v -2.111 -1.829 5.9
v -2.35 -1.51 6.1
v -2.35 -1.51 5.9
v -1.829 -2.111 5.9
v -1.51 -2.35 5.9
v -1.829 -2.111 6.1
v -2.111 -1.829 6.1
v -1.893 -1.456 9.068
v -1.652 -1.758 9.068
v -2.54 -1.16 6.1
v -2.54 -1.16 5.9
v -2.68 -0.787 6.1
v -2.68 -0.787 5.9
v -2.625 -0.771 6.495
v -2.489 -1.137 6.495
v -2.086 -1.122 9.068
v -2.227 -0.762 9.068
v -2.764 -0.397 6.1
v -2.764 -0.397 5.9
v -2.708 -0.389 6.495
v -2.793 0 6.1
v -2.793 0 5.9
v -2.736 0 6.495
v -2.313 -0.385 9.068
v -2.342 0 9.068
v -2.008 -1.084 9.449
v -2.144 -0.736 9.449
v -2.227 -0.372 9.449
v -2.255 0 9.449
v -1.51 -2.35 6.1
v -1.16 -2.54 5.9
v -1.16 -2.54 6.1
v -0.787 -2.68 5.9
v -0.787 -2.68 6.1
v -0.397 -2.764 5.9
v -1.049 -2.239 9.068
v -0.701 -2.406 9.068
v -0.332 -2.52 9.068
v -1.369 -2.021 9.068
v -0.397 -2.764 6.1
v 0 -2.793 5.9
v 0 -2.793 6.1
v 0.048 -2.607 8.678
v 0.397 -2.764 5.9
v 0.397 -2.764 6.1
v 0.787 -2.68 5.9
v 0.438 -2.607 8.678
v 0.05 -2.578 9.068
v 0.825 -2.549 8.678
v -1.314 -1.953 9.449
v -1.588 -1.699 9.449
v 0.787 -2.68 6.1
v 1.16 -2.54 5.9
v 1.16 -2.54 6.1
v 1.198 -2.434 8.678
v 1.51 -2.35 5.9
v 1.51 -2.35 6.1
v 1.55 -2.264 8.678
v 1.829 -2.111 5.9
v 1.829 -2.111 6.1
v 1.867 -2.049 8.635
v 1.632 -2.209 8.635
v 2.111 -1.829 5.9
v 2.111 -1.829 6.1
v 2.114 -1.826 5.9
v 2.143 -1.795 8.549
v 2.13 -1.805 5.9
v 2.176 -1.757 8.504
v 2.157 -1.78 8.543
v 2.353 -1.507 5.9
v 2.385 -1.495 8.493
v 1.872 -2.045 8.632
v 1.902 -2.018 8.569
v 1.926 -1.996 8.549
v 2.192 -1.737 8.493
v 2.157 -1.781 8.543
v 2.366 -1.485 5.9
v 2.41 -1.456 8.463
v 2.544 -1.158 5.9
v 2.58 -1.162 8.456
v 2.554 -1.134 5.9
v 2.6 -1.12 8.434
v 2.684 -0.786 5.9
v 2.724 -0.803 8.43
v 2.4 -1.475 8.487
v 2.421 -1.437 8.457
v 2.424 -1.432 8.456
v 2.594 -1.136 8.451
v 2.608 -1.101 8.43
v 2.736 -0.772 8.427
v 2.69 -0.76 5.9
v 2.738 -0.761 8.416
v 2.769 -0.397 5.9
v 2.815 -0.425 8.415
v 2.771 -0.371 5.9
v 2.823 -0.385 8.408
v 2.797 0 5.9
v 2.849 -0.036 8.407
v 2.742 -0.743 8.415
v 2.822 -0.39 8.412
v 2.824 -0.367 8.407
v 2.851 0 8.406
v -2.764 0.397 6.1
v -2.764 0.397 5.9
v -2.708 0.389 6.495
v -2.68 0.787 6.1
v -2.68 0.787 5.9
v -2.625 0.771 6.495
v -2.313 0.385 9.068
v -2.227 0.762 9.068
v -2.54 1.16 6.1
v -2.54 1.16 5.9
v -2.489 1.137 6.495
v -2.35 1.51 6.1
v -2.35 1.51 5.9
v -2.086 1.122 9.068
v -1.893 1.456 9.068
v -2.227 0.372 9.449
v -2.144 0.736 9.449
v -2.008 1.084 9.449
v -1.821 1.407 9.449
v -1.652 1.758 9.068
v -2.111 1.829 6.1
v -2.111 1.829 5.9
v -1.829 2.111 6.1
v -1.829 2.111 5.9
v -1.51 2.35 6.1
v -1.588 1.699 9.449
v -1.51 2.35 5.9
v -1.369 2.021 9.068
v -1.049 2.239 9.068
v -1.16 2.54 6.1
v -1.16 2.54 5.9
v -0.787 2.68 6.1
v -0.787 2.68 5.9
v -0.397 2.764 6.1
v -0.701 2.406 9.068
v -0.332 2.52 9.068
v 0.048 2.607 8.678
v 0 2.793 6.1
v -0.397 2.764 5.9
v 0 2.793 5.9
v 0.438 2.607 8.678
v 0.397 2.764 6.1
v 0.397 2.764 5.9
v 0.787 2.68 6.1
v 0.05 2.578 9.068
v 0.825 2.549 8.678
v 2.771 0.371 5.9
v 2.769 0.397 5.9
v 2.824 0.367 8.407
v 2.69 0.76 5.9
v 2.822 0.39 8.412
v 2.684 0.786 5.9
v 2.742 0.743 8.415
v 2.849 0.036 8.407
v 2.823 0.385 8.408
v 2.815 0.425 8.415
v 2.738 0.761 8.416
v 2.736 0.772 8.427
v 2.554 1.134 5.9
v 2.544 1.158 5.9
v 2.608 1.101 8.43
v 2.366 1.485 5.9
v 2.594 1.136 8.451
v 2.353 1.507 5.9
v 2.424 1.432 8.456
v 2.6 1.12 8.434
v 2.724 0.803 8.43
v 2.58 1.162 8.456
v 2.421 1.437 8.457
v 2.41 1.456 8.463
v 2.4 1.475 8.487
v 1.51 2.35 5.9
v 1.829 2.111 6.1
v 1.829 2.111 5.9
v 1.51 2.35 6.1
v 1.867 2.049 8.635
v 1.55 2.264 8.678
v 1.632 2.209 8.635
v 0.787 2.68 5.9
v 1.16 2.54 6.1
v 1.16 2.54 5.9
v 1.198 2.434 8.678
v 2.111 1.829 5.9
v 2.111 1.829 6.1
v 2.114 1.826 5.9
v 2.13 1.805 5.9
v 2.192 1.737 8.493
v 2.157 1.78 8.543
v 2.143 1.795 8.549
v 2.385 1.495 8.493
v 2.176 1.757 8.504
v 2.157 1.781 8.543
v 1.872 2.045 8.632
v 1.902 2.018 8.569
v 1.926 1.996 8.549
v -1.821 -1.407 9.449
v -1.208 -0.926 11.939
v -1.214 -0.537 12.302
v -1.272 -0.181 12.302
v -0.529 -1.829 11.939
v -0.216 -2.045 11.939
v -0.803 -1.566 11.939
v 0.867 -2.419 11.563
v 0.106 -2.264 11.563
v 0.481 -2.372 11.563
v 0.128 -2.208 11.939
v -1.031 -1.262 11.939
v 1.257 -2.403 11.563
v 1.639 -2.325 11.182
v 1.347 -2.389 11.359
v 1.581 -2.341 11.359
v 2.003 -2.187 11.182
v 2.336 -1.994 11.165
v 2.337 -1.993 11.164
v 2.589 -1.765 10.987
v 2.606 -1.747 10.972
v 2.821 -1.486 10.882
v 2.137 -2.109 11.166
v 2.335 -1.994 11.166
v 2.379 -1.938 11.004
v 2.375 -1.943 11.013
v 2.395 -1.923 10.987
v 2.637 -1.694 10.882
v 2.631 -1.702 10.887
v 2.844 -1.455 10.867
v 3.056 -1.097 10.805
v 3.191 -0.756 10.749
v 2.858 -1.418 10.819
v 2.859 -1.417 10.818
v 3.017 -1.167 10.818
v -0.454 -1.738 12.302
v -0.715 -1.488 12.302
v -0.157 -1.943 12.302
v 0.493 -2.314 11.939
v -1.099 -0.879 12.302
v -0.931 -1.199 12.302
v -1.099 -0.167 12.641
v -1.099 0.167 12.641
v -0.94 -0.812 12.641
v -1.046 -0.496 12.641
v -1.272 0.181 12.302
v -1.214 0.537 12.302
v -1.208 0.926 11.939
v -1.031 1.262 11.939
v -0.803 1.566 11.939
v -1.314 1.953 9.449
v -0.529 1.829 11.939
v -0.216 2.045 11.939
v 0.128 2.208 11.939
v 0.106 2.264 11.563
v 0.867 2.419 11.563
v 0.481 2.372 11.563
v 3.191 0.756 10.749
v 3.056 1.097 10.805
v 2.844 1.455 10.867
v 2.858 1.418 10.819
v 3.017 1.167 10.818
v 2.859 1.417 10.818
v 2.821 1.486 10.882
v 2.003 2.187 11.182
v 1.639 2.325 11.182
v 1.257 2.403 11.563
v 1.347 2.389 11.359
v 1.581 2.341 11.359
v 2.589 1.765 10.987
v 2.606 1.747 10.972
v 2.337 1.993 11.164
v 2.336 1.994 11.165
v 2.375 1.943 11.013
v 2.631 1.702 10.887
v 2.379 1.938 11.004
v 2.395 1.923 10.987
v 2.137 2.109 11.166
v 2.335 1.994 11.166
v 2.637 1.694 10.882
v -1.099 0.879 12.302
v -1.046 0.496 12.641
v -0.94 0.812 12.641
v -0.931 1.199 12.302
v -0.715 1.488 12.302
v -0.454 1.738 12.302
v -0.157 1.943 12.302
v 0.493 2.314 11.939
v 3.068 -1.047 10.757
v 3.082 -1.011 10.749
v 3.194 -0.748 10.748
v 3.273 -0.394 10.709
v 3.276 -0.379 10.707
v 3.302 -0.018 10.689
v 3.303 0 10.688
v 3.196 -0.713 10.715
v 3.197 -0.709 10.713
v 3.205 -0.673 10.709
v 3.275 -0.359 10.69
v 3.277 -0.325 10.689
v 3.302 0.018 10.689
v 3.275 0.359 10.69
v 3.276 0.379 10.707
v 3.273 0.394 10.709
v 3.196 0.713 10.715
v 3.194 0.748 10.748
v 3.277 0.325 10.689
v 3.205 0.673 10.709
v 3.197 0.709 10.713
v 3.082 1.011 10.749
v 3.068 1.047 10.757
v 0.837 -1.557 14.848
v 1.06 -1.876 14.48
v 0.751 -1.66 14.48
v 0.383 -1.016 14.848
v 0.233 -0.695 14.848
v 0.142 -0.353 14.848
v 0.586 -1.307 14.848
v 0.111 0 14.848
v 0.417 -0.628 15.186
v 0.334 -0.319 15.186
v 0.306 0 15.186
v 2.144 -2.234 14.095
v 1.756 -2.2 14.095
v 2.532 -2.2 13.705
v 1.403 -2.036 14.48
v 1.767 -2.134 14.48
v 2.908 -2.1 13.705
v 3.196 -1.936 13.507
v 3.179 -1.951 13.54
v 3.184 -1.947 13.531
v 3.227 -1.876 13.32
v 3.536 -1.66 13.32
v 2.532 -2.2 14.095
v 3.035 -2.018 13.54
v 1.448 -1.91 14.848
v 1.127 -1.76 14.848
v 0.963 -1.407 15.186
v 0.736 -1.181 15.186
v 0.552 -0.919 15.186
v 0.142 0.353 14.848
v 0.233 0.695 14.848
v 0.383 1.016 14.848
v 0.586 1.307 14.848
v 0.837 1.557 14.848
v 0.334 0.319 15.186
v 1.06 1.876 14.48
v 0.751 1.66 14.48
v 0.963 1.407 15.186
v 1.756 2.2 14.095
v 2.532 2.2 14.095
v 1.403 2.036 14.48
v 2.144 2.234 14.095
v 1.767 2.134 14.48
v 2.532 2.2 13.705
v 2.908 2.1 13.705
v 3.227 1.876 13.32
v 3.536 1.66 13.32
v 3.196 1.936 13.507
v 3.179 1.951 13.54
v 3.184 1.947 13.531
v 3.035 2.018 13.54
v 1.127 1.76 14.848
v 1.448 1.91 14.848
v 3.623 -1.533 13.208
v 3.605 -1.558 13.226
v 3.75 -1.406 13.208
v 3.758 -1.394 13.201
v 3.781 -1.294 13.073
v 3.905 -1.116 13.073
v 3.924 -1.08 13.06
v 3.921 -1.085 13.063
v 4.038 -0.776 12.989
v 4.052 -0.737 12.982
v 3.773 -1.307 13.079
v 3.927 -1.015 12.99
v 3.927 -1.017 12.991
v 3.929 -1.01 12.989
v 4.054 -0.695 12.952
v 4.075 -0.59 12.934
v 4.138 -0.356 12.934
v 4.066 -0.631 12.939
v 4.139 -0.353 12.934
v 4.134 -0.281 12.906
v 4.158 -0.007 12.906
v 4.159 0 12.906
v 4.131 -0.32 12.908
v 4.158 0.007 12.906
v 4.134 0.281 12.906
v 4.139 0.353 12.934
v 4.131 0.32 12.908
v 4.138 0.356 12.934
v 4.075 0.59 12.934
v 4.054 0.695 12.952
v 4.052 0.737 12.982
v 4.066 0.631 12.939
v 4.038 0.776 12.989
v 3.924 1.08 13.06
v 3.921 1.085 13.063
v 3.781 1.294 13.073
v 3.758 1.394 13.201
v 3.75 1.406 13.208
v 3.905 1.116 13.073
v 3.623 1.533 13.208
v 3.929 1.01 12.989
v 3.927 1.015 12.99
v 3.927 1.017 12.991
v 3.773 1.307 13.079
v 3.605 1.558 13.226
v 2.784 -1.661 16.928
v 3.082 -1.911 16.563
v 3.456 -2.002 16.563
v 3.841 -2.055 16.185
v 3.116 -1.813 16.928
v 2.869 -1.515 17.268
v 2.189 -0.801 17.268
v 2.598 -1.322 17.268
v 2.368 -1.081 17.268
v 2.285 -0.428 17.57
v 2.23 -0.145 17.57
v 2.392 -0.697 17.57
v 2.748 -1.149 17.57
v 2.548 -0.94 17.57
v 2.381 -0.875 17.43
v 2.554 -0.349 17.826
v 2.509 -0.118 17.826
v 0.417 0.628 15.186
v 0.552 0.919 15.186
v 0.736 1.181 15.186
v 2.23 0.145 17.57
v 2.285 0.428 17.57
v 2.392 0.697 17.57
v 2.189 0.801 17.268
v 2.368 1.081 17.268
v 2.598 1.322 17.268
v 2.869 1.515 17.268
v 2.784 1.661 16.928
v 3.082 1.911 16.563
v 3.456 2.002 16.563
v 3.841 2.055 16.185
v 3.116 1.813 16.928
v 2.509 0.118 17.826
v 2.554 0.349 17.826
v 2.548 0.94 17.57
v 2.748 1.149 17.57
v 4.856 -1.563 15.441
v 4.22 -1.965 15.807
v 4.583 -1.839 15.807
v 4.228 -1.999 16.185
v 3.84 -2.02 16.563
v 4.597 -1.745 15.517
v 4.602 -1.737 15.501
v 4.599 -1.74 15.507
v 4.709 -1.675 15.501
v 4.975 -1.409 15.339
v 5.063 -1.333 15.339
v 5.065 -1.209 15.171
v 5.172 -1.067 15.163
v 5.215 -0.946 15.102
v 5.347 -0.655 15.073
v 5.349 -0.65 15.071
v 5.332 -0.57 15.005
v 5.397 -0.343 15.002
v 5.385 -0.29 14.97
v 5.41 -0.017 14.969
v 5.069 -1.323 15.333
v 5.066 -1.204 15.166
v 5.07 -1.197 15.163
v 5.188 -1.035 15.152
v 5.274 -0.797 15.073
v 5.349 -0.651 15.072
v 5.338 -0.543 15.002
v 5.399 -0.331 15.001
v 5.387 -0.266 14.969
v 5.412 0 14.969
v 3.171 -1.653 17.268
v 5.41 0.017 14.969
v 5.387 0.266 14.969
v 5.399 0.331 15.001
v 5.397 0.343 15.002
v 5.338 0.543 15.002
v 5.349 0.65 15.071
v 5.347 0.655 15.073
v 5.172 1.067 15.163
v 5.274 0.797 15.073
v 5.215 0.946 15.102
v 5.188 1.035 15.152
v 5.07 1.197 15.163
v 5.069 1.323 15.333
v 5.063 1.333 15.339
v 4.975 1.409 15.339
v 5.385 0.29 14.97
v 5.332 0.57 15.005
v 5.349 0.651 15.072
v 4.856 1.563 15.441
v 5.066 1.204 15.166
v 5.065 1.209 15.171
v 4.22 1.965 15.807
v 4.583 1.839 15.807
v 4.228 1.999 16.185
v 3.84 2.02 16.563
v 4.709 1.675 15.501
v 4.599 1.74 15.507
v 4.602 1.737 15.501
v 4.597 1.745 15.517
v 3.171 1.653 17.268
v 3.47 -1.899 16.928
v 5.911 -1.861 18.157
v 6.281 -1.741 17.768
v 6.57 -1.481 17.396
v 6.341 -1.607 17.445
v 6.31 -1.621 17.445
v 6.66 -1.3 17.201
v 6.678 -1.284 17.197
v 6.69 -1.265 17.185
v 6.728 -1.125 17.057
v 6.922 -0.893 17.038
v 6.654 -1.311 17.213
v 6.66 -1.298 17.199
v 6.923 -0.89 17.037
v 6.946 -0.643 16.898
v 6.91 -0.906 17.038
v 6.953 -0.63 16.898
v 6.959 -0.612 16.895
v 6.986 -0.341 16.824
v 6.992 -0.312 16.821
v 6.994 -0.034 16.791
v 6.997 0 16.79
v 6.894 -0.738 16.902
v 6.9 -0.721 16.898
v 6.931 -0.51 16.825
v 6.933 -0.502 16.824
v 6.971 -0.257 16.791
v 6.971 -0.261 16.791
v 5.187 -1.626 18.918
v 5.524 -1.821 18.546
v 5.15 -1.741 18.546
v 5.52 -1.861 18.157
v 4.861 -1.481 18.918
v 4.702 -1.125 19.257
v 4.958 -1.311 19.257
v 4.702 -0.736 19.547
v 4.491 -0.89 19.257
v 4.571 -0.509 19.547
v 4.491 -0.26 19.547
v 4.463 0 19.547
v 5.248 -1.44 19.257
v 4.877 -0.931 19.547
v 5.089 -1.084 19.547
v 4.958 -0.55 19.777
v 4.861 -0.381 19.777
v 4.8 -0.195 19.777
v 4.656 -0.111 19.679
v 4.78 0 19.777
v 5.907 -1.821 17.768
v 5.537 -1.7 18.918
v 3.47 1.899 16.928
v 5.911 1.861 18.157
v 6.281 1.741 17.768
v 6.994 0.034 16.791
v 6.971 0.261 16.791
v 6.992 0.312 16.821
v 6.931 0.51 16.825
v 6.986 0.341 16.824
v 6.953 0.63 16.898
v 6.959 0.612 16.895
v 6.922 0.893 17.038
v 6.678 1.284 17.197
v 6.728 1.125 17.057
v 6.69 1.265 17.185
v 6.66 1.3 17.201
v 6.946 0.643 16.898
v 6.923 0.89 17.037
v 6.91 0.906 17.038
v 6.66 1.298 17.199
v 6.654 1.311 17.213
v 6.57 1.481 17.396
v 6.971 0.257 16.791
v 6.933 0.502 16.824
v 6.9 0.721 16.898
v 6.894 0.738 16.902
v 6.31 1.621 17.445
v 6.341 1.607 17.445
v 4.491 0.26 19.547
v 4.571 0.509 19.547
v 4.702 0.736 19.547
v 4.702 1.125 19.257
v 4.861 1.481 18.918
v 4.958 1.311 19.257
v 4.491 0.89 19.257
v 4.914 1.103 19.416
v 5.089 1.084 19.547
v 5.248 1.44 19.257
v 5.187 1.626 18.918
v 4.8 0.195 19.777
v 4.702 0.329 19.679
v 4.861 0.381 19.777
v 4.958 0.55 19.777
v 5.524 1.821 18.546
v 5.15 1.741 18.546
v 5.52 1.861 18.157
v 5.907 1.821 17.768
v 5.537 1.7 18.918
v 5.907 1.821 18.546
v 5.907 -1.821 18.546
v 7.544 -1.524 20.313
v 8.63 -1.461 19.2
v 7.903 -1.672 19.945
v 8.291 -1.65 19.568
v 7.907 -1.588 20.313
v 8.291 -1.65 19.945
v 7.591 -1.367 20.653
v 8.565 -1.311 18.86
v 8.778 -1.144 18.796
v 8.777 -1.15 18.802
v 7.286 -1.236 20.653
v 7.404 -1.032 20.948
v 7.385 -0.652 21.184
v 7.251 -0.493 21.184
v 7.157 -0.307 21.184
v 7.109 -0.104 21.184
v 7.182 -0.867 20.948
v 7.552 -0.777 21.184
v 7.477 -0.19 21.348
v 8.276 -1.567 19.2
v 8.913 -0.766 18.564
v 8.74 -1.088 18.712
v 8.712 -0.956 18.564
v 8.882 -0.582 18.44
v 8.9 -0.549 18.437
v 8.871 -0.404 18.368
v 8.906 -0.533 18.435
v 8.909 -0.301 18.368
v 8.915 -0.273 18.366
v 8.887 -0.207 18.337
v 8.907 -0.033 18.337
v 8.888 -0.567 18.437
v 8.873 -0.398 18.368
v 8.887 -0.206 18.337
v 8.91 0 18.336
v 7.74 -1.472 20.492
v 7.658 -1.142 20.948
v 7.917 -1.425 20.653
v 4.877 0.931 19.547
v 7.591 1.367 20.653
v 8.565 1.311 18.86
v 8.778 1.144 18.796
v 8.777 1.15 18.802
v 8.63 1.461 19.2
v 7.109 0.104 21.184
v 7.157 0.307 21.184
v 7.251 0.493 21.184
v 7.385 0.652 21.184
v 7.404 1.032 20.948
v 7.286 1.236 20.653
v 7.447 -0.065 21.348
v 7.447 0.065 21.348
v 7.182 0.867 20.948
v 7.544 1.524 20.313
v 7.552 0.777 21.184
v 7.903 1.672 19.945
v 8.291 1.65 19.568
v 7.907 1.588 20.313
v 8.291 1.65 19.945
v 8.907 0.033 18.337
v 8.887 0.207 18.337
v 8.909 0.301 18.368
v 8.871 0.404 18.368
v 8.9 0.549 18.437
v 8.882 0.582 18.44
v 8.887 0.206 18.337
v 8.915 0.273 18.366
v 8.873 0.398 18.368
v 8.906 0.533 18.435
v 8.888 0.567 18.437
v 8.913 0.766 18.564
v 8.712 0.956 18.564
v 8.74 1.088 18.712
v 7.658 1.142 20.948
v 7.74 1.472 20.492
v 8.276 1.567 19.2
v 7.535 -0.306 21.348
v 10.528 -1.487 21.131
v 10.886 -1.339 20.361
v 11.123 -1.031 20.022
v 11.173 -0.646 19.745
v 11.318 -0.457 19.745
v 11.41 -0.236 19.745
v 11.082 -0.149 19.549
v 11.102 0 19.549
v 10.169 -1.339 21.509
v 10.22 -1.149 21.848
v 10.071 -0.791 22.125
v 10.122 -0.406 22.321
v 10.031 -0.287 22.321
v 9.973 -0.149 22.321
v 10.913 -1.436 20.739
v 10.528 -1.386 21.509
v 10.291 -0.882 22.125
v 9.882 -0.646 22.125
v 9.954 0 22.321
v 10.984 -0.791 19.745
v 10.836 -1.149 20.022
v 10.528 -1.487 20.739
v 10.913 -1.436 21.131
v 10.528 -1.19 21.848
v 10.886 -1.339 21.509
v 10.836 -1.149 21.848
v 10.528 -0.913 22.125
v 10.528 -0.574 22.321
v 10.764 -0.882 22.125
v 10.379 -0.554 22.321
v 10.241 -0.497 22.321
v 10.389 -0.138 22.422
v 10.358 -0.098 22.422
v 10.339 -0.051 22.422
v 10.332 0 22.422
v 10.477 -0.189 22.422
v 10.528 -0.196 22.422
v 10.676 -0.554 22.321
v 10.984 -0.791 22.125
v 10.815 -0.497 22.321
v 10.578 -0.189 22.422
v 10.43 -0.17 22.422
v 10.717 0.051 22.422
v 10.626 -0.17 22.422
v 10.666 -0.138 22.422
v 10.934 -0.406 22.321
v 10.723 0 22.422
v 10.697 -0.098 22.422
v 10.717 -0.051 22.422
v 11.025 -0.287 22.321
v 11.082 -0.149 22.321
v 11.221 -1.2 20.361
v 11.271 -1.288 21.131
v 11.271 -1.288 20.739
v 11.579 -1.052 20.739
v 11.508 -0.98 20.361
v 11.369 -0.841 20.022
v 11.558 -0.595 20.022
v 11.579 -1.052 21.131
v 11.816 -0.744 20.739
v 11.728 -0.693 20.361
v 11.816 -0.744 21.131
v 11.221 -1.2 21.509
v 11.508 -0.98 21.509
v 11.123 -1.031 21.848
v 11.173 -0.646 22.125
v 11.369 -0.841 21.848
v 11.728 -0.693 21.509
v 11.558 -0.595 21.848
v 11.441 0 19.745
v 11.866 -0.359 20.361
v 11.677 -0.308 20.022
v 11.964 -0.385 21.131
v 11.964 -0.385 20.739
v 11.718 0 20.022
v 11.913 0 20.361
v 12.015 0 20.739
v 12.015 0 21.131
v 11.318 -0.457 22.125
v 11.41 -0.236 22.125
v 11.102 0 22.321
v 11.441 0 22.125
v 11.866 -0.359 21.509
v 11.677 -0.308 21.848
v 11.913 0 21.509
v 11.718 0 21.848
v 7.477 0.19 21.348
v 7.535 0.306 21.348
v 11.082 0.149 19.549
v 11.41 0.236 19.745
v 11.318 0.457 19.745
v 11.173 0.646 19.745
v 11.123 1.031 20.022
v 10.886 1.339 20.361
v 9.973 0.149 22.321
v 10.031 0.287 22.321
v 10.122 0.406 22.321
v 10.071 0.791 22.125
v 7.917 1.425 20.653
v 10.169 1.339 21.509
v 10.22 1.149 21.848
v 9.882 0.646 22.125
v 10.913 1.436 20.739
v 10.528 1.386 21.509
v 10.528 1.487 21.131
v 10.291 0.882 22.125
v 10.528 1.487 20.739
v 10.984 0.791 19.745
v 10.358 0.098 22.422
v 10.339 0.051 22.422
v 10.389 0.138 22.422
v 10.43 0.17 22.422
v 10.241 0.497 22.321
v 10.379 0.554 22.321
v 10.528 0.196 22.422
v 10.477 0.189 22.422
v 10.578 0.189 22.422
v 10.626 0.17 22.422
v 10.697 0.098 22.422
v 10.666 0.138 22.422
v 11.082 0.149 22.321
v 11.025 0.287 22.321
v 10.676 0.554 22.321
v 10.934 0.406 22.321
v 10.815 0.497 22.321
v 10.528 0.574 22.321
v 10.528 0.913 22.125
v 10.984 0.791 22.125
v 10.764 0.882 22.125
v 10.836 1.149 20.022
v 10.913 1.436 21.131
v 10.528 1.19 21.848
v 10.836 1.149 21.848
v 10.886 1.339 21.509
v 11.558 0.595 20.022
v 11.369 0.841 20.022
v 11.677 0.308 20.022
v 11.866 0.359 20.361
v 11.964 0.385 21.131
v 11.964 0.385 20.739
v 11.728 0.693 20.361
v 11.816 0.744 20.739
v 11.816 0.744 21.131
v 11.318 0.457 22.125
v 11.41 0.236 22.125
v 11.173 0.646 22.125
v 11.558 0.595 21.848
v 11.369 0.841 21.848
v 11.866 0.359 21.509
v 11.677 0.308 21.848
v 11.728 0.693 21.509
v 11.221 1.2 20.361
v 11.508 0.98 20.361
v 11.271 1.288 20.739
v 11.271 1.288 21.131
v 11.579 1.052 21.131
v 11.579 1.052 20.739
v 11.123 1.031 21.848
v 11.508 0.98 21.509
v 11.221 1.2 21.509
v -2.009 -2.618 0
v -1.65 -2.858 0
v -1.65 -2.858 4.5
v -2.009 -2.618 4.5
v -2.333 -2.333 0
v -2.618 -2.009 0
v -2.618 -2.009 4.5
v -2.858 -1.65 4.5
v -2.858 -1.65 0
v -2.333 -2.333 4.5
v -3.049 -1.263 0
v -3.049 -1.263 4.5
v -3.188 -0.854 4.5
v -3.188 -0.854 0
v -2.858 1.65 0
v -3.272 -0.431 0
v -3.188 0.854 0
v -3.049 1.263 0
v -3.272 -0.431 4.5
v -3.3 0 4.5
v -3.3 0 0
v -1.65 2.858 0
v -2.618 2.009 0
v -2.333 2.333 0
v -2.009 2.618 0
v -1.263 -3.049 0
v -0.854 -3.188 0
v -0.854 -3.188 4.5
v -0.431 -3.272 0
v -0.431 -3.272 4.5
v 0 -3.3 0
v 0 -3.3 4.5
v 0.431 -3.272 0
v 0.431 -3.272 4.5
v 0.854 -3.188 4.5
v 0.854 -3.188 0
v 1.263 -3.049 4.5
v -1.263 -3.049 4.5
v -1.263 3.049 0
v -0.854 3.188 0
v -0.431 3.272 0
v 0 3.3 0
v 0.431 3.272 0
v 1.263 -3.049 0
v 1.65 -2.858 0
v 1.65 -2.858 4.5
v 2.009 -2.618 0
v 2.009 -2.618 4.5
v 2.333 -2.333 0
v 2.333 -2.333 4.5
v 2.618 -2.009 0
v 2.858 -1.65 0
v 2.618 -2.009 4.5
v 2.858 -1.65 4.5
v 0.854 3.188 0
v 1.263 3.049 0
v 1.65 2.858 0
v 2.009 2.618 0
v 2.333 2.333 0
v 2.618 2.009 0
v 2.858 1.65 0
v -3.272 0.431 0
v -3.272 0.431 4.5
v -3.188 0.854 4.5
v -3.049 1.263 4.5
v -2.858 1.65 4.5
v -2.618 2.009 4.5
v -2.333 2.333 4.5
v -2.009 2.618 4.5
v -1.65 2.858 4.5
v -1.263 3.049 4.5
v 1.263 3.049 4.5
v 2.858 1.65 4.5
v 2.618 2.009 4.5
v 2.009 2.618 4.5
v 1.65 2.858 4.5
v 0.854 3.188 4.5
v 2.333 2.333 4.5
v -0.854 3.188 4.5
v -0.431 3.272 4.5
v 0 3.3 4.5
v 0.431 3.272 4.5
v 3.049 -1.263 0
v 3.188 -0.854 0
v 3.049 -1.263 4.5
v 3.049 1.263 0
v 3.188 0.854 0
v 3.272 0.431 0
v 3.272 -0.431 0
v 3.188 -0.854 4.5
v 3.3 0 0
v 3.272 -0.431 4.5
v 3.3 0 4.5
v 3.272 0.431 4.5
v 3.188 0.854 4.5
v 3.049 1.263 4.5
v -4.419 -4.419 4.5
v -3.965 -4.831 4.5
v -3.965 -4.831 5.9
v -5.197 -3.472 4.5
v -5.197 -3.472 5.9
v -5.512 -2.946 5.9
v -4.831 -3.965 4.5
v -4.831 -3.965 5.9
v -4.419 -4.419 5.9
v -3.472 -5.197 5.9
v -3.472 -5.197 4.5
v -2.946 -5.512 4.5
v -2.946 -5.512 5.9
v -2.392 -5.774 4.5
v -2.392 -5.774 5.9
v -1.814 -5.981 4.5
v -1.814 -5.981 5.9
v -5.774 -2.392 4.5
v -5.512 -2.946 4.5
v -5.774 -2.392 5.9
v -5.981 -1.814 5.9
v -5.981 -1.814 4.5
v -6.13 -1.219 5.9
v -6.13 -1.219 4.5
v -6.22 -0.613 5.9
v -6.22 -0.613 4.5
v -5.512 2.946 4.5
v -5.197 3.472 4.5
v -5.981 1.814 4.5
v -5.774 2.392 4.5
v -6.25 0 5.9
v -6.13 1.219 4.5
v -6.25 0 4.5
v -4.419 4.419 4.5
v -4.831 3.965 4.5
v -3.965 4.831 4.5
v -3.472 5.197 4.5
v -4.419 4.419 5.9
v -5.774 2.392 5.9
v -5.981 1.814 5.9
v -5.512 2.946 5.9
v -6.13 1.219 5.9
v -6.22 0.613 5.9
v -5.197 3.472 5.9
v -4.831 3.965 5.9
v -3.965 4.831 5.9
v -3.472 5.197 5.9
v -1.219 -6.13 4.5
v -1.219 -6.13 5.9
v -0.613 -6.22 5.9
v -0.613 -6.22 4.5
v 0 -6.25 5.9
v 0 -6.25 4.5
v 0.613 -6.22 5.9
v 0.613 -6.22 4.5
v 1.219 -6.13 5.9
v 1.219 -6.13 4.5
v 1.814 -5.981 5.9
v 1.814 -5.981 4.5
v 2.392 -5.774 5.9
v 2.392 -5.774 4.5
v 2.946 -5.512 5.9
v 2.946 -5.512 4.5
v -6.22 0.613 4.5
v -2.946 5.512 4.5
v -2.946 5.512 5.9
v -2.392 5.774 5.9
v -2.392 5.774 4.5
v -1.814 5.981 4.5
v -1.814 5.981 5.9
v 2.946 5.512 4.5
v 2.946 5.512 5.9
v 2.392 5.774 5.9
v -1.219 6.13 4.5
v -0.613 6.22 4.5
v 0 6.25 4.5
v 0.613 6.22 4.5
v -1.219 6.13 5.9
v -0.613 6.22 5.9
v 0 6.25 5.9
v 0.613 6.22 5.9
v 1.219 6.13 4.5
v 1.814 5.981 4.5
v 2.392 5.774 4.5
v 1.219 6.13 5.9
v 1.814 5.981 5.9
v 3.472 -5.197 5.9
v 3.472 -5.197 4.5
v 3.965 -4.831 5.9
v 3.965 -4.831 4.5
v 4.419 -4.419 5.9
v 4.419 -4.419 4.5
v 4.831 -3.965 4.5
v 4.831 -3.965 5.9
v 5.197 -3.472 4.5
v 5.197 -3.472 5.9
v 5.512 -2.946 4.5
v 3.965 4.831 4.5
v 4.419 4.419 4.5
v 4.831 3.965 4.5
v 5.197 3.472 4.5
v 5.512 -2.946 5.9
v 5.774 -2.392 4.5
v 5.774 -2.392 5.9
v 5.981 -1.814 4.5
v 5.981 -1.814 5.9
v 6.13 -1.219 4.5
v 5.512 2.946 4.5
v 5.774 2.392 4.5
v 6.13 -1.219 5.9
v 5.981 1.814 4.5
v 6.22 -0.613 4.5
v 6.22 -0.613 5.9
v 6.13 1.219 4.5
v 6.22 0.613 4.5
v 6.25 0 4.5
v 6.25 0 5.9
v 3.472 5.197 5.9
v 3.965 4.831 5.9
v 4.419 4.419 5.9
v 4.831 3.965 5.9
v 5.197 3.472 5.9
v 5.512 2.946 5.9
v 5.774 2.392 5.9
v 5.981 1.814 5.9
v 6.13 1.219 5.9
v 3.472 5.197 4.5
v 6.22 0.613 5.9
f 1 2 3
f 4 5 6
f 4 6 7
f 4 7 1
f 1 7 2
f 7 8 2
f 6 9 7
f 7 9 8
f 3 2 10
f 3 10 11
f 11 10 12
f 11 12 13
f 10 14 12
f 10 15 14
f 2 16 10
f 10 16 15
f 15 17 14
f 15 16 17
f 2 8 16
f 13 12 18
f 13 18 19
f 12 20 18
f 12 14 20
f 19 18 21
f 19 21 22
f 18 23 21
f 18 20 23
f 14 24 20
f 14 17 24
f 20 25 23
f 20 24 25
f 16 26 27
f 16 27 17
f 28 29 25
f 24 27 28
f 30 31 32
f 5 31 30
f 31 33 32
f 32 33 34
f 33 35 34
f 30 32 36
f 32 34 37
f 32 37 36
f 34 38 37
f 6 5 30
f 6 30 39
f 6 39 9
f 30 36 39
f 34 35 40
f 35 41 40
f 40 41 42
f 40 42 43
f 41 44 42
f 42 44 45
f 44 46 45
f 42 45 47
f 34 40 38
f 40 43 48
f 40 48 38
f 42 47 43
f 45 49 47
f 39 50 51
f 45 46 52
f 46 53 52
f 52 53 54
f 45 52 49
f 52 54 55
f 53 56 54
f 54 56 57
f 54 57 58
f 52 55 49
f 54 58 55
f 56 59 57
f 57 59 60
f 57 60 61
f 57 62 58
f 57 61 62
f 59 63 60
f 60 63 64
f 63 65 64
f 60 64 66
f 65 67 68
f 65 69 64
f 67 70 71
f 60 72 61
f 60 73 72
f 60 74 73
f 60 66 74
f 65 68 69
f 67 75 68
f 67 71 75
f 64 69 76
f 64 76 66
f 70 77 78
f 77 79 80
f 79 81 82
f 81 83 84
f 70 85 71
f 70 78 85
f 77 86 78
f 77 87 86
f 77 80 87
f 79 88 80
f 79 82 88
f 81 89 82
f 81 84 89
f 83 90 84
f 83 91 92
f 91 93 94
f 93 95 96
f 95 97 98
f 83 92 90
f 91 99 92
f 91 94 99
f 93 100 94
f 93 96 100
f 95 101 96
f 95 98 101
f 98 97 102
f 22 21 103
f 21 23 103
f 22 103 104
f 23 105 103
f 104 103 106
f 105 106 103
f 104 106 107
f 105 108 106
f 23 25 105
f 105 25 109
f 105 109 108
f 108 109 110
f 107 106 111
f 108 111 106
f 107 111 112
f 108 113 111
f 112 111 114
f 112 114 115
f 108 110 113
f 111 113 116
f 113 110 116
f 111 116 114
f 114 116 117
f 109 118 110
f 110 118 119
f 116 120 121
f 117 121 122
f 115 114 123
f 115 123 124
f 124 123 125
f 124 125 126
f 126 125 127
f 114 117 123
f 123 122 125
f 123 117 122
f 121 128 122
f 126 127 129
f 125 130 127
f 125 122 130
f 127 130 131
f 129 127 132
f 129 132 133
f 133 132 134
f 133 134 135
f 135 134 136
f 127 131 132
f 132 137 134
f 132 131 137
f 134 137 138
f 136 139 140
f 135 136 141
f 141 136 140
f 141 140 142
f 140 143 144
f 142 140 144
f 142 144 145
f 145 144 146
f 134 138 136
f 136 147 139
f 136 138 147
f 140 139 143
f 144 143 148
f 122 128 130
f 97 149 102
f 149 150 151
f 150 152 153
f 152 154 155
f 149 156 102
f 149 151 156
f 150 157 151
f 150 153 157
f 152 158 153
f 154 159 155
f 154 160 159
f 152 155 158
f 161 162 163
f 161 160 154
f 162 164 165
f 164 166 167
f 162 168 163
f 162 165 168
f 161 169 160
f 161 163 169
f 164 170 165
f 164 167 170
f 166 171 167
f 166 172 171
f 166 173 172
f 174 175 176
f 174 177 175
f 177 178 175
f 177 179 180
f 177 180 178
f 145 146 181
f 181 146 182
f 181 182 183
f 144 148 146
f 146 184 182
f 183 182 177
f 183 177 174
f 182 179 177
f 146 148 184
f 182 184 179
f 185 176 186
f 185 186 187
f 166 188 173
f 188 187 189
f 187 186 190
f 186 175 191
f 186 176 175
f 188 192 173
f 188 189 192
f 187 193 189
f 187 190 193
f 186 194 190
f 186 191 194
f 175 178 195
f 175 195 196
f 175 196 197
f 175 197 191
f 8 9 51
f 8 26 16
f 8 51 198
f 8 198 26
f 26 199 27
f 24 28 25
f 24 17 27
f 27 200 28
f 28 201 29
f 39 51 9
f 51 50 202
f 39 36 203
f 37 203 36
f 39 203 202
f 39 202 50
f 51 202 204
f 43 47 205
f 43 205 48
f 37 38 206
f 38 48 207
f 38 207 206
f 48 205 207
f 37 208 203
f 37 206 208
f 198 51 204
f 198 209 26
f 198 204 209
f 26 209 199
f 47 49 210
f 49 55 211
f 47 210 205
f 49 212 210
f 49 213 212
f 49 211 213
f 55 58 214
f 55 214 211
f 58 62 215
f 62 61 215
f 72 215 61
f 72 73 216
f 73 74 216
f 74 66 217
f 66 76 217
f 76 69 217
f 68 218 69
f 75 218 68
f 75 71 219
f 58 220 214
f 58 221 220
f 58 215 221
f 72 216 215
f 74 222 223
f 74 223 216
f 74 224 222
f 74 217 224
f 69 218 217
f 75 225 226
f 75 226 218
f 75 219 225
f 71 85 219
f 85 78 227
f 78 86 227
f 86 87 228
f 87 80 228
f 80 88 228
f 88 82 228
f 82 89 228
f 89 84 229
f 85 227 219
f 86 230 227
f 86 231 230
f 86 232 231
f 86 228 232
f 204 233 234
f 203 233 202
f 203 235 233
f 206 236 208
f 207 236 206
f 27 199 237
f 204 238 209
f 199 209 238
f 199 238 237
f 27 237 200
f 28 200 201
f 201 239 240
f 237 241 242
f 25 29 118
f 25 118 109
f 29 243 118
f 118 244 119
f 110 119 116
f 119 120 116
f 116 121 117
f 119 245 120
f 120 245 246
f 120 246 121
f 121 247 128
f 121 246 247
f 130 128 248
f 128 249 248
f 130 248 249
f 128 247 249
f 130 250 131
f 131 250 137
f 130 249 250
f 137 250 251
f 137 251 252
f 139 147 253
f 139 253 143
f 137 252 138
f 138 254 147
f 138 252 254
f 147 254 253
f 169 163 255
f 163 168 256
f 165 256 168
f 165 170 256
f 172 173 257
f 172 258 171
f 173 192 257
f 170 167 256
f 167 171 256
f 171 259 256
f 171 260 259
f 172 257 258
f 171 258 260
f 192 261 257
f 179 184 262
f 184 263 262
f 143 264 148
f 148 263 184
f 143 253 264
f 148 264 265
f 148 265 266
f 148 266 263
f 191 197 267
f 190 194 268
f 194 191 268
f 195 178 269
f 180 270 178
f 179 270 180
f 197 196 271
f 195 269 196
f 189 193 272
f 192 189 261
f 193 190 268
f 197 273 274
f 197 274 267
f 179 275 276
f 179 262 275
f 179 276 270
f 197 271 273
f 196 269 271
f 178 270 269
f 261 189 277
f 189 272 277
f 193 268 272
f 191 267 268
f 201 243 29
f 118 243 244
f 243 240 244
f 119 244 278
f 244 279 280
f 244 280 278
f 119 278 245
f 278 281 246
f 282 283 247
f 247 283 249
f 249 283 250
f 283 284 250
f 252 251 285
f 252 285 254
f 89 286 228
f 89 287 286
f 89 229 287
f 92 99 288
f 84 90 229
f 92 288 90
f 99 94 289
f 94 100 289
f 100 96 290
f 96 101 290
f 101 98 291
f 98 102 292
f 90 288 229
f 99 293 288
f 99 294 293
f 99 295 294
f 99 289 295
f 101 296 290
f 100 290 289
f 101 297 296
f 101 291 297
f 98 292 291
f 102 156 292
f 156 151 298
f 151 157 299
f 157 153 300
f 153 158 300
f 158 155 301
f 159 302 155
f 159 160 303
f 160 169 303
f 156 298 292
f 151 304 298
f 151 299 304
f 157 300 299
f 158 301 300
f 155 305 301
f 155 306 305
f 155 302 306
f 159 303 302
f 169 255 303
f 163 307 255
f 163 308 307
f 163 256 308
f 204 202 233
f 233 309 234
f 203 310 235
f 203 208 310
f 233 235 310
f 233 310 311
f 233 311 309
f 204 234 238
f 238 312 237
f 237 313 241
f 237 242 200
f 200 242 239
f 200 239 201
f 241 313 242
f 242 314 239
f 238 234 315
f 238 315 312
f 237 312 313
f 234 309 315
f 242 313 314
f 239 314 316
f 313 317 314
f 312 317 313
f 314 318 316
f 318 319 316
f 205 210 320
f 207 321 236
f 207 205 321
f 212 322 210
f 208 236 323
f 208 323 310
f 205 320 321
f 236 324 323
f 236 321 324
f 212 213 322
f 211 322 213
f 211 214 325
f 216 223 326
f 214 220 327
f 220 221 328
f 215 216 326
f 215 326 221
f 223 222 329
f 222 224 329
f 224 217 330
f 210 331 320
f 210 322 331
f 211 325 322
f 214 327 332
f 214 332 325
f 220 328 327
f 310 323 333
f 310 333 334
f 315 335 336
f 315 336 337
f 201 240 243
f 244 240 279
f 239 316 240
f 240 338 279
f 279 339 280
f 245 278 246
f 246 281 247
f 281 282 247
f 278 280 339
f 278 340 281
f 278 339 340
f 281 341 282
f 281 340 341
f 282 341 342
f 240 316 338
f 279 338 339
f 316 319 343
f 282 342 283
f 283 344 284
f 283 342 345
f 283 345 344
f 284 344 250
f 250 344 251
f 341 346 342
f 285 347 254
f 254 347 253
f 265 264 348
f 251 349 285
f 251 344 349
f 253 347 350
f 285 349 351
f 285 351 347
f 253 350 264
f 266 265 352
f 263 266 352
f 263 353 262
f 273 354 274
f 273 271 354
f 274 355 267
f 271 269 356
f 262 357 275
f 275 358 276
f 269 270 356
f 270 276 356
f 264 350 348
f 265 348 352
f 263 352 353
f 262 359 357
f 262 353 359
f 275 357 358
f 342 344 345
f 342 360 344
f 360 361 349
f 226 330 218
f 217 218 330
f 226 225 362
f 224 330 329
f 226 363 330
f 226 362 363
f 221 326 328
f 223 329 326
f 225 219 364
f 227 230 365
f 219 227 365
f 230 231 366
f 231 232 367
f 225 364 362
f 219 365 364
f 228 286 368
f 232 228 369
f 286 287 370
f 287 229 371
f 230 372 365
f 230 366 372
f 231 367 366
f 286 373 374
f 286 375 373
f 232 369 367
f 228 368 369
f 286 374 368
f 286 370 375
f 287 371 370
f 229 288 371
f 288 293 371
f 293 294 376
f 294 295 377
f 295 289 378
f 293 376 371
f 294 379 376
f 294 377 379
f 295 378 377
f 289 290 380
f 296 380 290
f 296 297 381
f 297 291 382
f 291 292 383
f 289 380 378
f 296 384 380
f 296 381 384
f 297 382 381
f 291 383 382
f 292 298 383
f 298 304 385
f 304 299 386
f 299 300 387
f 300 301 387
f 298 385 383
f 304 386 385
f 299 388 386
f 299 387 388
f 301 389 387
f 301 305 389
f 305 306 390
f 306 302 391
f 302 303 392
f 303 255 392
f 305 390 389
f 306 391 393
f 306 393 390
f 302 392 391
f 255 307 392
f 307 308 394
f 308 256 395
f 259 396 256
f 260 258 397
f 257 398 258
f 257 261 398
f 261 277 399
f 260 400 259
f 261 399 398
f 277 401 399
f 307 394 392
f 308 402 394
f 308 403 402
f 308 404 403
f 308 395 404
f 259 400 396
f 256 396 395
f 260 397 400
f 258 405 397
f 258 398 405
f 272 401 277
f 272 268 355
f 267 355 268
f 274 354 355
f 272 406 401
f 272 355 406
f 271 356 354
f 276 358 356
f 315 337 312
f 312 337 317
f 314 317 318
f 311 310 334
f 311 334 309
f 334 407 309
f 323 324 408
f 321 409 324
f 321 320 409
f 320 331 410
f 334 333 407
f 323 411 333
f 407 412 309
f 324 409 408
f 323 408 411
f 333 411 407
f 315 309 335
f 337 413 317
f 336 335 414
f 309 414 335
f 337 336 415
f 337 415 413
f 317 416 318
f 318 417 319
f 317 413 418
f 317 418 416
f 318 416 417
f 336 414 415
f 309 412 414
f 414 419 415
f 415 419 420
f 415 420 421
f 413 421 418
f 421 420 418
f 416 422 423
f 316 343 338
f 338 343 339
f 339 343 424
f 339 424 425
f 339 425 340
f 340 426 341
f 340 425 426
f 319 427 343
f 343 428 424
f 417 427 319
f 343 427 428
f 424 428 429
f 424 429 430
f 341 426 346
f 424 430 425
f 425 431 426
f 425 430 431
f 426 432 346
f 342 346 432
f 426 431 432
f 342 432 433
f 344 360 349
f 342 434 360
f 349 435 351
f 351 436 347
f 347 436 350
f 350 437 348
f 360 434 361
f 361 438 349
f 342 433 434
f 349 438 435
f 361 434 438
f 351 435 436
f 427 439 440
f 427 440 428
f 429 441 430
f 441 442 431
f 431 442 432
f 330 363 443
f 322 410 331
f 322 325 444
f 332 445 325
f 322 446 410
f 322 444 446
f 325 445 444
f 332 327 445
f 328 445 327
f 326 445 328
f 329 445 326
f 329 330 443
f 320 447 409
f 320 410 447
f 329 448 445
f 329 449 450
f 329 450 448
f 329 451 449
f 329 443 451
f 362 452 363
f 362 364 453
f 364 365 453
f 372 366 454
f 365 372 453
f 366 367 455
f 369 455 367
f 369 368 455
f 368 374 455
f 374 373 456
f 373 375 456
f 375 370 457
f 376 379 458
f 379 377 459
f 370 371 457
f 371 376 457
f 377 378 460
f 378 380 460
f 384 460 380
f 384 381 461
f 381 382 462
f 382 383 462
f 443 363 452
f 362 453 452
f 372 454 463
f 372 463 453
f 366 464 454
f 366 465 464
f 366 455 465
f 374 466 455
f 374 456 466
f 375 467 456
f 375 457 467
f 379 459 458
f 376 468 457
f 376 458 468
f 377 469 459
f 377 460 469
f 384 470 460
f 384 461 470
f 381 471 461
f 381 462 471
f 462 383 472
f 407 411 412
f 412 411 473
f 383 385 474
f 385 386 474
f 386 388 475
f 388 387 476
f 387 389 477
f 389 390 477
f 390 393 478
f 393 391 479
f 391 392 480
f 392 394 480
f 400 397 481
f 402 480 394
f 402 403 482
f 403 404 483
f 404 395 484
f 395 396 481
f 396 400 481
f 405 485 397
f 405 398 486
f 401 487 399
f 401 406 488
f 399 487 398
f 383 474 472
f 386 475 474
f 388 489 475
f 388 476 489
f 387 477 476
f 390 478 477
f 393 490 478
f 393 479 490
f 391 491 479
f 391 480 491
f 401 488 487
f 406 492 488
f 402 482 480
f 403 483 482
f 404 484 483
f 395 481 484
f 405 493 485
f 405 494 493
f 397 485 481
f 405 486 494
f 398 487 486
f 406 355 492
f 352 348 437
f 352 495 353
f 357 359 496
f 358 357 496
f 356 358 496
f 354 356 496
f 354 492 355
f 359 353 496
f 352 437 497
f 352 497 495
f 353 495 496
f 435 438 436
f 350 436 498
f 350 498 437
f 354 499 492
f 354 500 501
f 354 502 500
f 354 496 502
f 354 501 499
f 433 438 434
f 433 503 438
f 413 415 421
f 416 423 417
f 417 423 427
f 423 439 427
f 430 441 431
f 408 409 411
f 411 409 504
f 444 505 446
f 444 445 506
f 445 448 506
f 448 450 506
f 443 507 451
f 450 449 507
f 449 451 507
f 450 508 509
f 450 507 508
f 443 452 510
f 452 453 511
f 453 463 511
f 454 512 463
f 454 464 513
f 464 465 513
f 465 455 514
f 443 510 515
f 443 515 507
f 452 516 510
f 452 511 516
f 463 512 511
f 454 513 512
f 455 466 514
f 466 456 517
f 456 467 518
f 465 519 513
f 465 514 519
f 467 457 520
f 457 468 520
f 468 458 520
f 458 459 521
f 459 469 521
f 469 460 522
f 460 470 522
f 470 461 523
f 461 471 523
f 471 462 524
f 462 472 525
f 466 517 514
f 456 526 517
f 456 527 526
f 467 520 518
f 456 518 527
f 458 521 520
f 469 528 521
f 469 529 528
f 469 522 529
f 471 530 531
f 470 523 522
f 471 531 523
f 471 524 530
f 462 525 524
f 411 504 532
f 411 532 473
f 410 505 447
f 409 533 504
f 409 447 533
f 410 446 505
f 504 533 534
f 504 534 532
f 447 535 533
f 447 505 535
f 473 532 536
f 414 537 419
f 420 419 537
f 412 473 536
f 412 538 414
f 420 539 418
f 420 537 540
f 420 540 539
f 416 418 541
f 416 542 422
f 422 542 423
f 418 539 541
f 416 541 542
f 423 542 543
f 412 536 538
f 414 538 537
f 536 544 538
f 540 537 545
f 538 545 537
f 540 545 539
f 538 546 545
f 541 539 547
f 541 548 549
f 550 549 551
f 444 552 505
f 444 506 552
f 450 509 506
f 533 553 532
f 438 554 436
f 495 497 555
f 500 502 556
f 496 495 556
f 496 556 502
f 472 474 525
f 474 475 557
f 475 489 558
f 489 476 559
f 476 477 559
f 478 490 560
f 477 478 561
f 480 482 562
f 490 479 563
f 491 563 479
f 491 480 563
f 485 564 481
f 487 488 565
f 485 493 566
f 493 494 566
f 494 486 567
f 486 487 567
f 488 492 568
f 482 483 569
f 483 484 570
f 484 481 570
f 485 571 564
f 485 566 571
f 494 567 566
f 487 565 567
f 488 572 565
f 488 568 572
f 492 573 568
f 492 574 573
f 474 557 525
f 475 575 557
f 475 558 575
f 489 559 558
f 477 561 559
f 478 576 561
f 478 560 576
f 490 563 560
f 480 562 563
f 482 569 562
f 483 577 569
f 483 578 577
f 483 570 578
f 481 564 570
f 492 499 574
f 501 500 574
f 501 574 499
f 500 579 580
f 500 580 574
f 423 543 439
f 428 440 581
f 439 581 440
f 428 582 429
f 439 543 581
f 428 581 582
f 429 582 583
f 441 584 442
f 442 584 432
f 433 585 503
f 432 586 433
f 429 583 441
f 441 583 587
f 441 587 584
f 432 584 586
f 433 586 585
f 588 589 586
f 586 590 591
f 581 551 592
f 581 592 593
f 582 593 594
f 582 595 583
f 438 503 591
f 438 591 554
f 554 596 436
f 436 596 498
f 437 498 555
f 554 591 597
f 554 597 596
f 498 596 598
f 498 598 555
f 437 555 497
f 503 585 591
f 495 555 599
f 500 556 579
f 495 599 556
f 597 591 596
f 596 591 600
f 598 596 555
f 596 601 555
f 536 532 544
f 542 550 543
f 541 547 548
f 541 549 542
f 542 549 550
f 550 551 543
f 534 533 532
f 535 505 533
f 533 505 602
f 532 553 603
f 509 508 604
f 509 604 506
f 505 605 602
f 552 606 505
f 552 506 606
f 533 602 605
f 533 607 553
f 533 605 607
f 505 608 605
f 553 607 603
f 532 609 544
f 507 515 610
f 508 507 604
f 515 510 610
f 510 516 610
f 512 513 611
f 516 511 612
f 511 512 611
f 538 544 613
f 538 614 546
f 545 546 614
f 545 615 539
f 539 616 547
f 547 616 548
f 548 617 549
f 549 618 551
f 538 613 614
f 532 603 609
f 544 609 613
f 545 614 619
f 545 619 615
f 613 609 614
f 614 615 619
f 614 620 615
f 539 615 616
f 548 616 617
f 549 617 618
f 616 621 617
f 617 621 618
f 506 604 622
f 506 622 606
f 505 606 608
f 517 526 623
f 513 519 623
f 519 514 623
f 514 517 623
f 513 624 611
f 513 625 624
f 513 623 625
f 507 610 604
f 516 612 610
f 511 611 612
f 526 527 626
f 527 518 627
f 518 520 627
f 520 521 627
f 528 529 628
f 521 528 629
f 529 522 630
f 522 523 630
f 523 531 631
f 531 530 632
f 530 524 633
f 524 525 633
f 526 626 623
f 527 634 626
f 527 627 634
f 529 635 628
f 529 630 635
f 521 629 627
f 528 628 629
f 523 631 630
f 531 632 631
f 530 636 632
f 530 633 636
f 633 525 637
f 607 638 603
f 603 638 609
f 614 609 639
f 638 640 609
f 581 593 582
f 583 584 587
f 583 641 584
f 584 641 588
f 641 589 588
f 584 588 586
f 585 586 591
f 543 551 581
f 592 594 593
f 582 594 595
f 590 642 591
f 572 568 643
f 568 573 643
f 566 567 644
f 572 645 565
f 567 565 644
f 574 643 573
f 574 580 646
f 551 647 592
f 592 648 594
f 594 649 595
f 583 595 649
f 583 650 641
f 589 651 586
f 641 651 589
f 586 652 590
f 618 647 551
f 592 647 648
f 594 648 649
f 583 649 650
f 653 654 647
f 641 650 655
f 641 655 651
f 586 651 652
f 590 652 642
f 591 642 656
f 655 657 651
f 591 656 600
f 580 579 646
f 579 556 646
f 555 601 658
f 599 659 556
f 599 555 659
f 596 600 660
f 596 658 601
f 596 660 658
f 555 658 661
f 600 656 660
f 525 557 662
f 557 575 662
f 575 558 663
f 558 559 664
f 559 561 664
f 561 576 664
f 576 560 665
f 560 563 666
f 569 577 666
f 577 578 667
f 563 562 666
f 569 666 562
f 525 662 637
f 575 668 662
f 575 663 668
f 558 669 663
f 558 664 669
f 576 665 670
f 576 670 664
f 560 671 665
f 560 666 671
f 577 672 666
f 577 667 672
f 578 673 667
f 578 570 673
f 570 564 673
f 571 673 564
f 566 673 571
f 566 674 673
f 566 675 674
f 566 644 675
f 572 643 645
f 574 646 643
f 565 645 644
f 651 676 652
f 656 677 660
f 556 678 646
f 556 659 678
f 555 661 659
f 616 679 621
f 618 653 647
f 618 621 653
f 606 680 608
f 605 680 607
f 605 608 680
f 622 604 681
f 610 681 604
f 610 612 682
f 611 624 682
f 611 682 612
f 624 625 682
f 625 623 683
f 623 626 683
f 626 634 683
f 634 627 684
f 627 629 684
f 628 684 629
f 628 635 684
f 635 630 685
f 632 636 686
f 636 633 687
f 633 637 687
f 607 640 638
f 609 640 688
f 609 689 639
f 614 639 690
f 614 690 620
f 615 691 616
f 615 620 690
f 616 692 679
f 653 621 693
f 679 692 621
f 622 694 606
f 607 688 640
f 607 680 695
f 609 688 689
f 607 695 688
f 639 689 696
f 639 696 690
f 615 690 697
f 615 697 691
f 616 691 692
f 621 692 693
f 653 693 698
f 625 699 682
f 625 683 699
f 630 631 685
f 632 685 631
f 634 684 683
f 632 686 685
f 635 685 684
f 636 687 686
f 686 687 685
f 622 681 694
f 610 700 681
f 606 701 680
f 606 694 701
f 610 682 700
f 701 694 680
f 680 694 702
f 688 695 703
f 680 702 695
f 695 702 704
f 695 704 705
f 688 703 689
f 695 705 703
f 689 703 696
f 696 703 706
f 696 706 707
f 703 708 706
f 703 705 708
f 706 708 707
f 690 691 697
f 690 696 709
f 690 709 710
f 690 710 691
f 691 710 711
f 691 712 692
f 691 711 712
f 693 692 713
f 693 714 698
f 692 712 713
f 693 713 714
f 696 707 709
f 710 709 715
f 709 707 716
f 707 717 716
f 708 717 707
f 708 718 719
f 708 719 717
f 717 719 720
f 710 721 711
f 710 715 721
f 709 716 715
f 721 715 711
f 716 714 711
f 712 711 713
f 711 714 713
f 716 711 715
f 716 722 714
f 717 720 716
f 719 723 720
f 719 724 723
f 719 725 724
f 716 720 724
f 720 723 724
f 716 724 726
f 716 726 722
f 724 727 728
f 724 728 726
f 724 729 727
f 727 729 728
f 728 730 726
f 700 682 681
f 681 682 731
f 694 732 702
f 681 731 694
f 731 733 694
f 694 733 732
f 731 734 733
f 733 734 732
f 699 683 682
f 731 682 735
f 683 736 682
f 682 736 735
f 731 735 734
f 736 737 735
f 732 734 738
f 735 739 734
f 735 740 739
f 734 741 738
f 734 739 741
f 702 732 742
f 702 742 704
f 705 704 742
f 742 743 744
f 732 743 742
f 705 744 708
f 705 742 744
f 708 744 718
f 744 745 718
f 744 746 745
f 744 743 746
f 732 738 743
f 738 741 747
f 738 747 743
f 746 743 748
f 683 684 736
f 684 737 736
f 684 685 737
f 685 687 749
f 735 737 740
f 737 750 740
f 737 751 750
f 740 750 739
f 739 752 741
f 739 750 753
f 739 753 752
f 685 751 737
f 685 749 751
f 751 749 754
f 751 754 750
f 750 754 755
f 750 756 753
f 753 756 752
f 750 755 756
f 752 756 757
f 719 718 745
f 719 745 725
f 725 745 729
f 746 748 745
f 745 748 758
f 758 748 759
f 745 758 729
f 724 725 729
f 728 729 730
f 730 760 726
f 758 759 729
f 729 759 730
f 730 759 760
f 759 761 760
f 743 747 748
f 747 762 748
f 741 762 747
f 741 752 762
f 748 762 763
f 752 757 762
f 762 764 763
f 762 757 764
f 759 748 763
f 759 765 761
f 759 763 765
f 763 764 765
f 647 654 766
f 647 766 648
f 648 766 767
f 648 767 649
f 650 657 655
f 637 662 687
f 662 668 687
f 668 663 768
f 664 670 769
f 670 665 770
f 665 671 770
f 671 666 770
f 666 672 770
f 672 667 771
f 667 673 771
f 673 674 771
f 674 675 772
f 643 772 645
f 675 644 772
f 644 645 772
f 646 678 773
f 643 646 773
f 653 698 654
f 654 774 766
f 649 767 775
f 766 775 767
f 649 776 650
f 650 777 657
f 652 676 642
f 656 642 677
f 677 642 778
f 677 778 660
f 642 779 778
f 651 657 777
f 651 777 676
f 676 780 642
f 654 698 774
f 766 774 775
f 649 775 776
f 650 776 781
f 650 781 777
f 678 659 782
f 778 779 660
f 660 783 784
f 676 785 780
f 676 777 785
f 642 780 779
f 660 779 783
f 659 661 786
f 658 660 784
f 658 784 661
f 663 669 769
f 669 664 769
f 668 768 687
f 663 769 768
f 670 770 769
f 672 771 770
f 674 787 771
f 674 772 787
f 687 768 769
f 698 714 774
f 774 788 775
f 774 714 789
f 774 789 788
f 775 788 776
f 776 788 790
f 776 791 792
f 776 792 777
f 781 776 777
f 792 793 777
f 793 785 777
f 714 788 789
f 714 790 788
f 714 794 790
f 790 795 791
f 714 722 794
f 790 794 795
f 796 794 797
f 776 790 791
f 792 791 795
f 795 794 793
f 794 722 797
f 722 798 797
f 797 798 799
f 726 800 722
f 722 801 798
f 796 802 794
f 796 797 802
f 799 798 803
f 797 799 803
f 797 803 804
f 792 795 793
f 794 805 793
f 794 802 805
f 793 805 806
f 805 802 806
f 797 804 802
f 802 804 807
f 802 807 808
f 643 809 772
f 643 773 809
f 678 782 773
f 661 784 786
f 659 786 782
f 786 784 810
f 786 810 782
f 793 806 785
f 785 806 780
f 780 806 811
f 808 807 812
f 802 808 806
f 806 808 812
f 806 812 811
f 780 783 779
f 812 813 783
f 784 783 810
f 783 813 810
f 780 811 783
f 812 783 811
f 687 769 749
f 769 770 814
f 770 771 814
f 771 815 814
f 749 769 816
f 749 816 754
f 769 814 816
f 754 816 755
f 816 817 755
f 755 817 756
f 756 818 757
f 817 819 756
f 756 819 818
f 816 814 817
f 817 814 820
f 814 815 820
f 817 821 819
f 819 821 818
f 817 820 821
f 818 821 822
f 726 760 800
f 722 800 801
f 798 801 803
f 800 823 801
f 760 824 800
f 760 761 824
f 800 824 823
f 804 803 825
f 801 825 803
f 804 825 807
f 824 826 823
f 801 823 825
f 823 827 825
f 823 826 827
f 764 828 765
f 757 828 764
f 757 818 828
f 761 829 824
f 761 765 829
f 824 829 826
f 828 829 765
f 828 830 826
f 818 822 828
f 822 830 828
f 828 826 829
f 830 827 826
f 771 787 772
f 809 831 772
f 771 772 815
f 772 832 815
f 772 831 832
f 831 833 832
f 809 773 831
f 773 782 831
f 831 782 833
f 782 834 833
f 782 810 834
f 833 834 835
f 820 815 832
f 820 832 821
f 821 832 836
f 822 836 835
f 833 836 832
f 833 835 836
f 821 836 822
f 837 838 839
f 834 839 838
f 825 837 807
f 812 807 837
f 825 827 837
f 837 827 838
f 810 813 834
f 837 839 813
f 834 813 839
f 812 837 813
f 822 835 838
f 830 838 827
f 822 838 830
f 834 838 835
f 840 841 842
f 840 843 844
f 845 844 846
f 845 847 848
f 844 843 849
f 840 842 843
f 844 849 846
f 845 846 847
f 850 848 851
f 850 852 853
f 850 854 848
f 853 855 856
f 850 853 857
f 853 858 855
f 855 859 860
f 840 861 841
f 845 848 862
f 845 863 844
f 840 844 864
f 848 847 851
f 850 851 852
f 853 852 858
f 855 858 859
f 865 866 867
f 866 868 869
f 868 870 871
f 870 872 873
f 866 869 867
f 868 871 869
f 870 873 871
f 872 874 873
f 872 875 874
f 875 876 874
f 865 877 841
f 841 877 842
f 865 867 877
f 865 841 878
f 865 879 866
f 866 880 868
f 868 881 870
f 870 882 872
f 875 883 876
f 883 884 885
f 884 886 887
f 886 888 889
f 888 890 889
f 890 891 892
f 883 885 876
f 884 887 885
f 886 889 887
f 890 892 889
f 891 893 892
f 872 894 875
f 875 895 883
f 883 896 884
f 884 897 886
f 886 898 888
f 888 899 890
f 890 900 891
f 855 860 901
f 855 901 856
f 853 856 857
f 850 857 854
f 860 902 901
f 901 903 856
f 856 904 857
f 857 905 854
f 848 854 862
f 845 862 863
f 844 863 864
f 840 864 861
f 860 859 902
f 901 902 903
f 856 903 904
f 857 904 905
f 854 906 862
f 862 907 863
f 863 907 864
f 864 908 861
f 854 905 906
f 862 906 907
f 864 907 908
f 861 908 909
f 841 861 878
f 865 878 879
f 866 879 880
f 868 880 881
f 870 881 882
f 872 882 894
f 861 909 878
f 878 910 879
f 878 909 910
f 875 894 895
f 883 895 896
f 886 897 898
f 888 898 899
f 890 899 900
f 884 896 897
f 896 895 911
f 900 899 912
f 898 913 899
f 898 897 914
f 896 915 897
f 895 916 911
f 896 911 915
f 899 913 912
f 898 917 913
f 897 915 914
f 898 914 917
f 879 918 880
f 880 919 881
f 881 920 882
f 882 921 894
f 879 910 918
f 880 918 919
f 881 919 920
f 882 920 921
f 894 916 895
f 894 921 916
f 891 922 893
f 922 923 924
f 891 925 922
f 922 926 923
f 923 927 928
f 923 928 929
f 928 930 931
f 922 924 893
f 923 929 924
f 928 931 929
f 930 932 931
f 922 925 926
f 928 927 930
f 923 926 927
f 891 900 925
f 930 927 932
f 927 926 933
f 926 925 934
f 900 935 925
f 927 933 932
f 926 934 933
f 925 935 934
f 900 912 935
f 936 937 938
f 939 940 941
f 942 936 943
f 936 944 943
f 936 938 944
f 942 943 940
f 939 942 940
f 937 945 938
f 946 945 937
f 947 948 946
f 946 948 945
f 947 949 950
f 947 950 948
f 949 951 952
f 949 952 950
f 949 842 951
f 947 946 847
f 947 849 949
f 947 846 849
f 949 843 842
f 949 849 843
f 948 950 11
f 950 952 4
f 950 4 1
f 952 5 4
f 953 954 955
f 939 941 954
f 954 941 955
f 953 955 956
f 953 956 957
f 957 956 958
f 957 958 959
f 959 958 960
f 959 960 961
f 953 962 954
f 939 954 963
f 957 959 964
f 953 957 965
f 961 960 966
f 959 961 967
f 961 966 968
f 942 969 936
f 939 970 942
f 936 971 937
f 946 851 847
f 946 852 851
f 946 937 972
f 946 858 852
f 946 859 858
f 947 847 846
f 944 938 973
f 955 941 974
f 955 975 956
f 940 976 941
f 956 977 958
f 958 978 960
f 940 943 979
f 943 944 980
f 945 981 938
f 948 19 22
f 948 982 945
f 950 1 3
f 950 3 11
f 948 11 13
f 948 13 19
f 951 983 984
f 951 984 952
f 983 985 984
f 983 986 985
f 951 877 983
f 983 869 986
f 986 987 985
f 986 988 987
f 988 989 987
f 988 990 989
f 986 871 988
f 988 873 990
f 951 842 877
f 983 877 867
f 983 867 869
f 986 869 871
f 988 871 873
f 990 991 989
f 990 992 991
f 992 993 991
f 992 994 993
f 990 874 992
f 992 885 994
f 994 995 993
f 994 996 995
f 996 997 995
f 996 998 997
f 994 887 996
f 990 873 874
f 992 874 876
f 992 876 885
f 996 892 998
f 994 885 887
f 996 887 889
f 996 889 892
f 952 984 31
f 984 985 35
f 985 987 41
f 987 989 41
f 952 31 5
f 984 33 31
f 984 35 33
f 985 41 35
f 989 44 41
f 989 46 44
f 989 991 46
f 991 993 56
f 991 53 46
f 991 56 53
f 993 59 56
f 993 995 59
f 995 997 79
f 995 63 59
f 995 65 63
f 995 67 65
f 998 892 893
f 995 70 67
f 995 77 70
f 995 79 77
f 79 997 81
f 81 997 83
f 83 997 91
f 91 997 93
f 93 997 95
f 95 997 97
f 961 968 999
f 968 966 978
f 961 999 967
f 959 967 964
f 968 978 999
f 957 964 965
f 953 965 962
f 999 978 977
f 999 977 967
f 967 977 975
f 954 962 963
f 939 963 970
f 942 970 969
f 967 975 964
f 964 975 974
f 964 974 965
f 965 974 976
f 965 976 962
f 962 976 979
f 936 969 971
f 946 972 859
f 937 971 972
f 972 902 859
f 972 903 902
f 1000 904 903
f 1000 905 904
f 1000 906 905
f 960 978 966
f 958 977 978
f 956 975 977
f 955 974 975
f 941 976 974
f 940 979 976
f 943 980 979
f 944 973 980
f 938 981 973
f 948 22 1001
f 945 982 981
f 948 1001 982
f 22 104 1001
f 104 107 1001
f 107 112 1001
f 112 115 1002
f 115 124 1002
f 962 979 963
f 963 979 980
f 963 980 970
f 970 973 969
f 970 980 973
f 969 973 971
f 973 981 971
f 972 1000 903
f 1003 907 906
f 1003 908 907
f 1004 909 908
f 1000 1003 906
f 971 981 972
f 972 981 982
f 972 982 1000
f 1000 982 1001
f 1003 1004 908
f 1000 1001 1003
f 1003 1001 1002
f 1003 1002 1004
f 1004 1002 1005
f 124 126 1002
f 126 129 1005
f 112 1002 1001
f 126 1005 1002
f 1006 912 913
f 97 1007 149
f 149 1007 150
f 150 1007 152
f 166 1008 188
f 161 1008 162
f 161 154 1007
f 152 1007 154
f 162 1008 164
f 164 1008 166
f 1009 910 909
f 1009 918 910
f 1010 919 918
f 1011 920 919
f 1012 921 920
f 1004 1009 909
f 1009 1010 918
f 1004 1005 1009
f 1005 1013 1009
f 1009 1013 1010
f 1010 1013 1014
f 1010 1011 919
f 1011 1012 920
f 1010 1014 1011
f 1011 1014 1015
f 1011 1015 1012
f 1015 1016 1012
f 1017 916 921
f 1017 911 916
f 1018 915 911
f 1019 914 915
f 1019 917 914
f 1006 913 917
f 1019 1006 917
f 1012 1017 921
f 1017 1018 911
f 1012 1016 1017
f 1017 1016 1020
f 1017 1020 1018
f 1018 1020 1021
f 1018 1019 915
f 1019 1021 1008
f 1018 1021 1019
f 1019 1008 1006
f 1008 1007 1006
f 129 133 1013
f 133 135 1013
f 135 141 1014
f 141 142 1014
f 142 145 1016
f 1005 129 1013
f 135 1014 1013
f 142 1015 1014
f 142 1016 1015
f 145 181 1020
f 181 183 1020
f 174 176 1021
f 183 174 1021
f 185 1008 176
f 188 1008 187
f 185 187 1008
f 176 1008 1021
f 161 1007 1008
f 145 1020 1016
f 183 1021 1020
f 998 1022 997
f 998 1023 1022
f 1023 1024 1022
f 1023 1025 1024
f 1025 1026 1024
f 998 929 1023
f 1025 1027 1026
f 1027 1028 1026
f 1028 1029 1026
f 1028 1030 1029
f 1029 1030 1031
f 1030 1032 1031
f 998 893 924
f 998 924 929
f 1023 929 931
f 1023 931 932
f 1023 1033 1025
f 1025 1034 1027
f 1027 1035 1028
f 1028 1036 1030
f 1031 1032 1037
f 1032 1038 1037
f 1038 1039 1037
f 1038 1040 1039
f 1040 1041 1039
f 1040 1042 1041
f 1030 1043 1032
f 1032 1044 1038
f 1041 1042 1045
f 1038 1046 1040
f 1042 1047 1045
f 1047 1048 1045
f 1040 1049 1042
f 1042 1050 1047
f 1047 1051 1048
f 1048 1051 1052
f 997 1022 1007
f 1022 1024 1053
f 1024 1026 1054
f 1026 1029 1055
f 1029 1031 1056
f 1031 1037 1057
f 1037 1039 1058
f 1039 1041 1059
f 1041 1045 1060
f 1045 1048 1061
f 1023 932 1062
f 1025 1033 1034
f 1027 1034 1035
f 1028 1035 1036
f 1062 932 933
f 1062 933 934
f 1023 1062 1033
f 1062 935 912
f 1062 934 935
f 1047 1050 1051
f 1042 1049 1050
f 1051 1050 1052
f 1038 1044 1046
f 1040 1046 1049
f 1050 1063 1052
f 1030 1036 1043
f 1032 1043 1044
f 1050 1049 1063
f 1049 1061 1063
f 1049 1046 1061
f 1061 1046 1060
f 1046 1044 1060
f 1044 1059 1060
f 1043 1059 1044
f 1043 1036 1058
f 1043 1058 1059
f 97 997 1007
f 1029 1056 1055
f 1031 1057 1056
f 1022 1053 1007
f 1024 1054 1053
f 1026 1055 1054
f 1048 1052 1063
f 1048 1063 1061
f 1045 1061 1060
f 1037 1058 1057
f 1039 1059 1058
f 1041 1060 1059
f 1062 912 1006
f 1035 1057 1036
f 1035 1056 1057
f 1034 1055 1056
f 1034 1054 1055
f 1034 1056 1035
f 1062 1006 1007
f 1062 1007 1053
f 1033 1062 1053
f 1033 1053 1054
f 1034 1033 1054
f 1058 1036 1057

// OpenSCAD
// OpenClaw v2 antenna — print 2 in white (single part for the STL gates)
include <openclaw_case_005.scad>
PART = "antenna";
